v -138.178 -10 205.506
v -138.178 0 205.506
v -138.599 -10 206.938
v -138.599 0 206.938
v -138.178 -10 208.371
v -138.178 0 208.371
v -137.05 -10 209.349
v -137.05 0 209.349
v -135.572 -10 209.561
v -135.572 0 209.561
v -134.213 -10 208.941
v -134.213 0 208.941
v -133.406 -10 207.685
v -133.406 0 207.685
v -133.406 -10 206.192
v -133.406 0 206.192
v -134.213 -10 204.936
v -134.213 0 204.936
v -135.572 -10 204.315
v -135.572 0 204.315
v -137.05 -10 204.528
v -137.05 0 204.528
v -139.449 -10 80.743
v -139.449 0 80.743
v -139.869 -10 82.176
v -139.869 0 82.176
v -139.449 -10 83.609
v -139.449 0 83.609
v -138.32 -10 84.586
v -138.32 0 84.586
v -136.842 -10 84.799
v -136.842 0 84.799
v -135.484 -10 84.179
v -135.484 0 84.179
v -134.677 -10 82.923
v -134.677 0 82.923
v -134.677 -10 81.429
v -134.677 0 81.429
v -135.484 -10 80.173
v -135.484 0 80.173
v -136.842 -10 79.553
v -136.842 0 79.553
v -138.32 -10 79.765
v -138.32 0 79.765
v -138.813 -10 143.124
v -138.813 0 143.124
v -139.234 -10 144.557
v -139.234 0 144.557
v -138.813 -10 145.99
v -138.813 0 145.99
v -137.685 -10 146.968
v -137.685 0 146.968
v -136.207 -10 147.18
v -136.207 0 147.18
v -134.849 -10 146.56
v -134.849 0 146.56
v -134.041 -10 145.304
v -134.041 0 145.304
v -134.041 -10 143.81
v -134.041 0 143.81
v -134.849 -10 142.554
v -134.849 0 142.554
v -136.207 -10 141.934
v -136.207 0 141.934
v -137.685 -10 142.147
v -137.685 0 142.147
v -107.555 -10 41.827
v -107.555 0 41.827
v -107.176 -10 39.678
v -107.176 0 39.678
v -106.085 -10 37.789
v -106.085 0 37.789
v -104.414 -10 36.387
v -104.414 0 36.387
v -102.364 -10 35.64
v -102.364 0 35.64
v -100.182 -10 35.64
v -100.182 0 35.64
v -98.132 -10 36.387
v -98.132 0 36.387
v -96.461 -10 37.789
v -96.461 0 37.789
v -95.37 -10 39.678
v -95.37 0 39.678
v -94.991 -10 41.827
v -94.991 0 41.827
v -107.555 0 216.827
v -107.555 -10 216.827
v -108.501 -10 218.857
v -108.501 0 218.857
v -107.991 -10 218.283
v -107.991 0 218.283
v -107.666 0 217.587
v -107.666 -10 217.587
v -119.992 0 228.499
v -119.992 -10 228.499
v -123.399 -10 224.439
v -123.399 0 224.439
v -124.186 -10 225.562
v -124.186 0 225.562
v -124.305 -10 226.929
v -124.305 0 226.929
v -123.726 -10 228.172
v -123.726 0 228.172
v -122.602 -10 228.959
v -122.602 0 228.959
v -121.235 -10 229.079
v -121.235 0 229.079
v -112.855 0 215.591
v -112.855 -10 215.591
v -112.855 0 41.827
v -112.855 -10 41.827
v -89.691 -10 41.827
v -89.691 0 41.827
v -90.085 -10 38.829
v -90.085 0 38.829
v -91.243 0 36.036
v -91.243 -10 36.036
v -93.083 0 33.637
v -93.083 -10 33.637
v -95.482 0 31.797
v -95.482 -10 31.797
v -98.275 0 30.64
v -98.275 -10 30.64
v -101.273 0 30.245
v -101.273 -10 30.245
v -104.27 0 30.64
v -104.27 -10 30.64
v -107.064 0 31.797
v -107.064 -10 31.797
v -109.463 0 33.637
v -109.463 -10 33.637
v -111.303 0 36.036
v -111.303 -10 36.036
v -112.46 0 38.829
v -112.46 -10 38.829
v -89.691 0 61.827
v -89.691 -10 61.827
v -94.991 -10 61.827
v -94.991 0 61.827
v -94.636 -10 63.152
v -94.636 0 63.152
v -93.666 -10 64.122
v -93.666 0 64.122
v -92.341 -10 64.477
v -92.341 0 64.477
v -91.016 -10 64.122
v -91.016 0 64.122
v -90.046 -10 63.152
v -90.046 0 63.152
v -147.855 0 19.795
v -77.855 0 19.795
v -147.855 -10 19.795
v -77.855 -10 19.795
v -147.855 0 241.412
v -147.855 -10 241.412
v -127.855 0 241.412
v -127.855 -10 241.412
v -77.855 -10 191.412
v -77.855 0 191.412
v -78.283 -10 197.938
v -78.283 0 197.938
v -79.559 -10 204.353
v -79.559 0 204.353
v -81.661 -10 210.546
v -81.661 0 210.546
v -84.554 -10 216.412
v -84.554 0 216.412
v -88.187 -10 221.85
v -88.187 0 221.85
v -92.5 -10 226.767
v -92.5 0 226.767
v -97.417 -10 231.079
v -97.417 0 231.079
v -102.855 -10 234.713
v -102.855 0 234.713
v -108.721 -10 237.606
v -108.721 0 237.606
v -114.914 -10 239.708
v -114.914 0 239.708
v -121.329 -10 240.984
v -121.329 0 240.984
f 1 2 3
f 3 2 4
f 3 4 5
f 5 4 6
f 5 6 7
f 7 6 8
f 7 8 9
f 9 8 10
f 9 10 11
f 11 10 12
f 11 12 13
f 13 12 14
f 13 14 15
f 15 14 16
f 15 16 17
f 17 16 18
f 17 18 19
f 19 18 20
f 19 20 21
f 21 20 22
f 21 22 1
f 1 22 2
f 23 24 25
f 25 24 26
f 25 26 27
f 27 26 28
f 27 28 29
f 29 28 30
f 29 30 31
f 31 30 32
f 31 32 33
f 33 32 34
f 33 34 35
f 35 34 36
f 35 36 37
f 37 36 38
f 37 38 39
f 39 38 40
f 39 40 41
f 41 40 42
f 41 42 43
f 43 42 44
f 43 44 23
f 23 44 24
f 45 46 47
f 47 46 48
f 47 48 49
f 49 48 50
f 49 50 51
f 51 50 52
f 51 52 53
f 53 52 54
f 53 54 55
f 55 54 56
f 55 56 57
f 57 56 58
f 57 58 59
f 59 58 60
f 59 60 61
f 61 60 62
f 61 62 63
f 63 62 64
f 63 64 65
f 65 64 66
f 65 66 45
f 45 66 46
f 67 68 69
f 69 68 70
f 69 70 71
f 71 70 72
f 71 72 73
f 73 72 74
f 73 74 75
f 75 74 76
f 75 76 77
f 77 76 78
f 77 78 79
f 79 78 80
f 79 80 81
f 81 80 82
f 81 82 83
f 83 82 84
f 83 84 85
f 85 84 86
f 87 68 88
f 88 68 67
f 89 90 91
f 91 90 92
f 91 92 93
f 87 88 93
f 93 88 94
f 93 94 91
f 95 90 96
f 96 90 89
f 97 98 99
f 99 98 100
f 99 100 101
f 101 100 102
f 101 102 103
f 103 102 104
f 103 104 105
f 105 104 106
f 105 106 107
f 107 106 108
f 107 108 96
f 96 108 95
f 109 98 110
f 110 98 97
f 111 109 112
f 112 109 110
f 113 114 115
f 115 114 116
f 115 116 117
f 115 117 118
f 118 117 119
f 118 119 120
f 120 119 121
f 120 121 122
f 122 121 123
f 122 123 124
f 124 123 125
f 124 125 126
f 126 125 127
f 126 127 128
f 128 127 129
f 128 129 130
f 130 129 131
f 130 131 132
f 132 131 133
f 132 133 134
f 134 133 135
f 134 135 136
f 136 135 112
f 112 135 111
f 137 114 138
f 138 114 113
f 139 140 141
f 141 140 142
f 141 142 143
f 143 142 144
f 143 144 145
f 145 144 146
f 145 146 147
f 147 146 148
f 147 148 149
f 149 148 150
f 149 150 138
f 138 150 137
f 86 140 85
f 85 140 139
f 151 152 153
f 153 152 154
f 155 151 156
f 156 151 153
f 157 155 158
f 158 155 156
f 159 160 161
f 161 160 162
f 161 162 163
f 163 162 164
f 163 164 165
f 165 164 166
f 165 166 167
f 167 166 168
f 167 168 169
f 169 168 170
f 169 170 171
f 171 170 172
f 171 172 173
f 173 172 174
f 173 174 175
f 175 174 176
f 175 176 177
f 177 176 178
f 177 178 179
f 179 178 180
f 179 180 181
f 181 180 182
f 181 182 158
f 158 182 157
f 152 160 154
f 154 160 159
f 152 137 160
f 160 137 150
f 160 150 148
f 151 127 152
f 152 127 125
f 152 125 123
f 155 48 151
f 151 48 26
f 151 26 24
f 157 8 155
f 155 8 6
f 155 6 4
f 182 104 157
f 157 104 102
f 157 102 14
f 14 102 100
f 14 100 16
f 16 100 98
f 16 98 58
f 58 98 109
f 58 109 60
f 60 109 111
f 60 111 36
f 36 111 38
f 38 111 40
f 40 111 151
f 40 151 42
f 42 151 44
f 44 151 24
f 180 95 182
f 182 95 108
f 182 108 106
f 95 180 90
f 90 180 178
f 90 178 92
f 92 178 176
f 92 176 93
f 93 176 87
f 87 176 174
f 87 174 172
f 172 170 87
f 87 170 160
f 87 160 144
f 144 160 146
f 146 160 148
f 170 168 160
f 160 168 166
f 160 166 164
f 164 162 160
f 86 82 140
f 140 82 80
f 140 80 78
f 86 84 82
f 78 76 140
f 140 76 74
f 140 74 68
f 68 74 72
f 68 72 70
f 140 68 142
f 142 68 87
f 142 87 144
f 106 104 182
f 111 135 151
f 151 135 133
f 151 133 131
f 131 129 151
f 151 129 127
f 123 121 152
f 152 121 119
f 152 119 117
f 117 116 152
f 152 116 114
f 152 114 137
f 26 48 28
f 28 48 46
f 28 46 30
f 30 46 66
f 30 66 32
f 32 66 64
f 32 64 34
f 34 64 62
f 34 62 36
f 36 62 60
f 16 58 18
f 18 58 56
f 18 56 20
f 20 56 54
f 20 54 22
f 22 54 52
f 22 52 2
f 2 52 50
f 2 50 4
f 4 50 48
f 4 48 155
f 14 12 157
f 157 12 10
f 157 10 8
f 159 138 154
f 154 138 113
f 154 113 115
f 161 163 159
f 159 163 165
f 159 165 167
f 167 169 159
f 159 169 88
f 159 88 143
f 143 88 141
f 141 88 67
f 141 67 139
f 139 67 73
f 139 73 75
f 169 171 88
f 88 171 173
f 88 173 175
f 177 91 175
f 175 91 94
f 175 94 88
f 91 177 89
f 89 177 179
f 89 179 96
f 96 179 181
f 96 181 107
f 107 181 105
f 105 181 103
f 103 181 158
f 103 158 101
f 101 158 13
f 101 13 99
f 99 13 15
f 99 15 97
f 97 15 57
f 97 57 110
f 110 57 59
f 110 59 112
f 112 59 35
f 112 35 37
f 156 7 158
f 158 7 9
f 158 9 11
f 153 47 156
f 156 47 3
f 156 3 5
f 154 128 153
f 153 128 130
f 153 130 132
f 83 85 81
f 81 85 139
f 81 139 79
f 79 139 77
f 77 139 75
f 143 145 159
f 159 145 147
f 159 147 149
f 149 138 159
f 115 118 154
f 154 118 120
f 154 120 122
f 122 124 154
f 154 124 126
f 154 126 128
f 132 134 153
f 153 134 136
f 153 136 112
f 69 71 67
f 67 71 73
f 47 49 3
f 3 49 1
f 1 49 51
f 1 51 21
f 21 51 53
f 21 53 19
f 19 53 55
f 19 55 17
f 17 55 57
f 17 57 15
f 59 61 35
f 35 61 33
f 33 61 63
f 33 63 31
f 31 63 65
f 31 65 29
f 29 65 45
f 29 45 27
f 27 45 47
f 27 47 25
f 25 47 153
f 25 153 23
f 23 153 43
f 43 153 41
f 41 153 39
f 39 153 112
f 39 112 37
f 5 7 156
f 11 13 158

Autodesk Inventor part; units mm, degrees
ref_plane "YZ Plane" through (0, 0, 0) normal (1, 0, 0) x (0, 1, 0)
ref_plane "XZ Plane" through (0, 0, 0) normal (0, 1, 0) x (-1, 0, 0)
ref_plane "XY Plane" through (0, 0, 0) normal (0, 0, 1) x (1, 0, 0)
sketch "Sketch1" plane through (0, 0, 0) normal (0, 1, 0) x (-1, 0, 0)
  line L0 (127.8549, 19.7947) -> (147.8549, 19.7947)
  line L1 (147.8549, 19.7947) -> (147.8549, 269.7947)
  line L2 (127.8549, 269.7947) -> (127.8549, 19.7947) construction
  line L3 (127.8549, 19.7947) -> (77.8549, 19.7947)
  line L4 (135.3134, 269.3194) -> (137.8549, 19.7947) construction
  circle A0 centre (136.5841, 144.5571) radius 2.65
  line L5 (136.5841, 144.5571) -> (137.8549, 19.7947) construction
  circle A1 centre (137.2195, 82.1759) radius 2.65
  line L6 (136.5841, 144.5571) -> (134.9234, 307.6106) construction
  line L7 (136.5841, 144.5571) -> (135.3134, 269.3194) construction
  circle A2 centre (135.9488, 206.9383) radius 2.65
  line L8 (110.2049, 216.8269) -> (110.2049, 41.8269) construction
  line L9 (110.2049, 216.8269) -> (121.6955, 226.4688) construction
  circle A3 centre (121.6955, 226.4688) radius 2.65
  circle A4 centre (110.2049, 216.8269) radius 2.65
  line L10 (92.3408, 41.8269) -> (92.3408, 61.8269) construction
  arc A5 (92.3408, 41.8269) -> (110.2049, 41.8269) centre (101.2728, 41.8269) ccw construction
  circle A6 centre (110.2049, 41.8269) radius 2.65
  circle A7 centre (92.3408, 61.8269) radius 2.65
  circle A8 centre (92.3408, 41.8269) radius 2.65
  line L11 (121.6955, 226.4688) -> (123.3989, 224.4387) construction
  line L12 (123.3989, 224.4387) -> (111.9082, 214.7969)
  line L13 (121.6955, 226.4688) -> (119.9921, 228.4988) construction
  line L14 (119.9921, 228.4988) -> (108.5015, 218.857)
  line L15 (110.2049, 216.8269) -> (107.5549, 216.8269) construction
  line L16 (107.5549, 216.8269) -> (107.5549, 41.8269)
  line L17 (112.8549, 41.8269) -> (112.8549, 216.8269)
  line L18 (94.9908, 61.8269) -> (94.9908, 41.8269)
  line L19 (89.6908, 61.8269) -> (89.6908, 41.8269)
  arc A9 (94.9908, 41.8269) -> (107.5549, 41.8269) centre (101.2728, 41.8269) ccw
  arc A10 (89.6908, 41.8269) -> (112.8549, 41.8269) centre (101.2728, 41.8269) ccw
  line L20 (92.3408, 61.8269) -> (94.9908, 61.8269) construction
  line L21 (77.8549, 19.7947) -> (77.8549, 191.4117)
  line L22 (112.8549, 129.3269) -> (127.8549, 129.3269) construction
  line L23 (127.8549, 241.4117) -> (147.8549, 241.4117)
  arc A11 (127.8549, 241.4117) -> (77.8549, 191.4117) centre (127.8549, 191.4117) ccw
  point P0 (0, 0)
  point P1 (112.8549, 215.5912)
  point P2 (89.6908, 41.8269)
  point P3 (77.8549, 241.4117)
  dimension "d0" = 20
  dimension "d1" = 250
  dimension "d11" = 5.3
  dimension "d12" = 5.3
  dimension "d13" = 5.3
  dimension "d16" = 175
  dimension "d17" = 15
  dimension "d18" = 130
  dimension "d19" = 5.3
  dimension "d20" = 5.3
  dimension "d21" = 20
  dimension "d22" = 5.3
  dimension "d23" = 5.3
  dimension "d24" = 5.3
  dimension "d25" = 50
  dimension "d26" = 15
  dimension "d29" = 10
  dimension "d30" = 10
  dimension "d31" = 50
extrude "Extrusion1" add sketch "Sketch1" against normal blind 10
properties part number "slothinge"
